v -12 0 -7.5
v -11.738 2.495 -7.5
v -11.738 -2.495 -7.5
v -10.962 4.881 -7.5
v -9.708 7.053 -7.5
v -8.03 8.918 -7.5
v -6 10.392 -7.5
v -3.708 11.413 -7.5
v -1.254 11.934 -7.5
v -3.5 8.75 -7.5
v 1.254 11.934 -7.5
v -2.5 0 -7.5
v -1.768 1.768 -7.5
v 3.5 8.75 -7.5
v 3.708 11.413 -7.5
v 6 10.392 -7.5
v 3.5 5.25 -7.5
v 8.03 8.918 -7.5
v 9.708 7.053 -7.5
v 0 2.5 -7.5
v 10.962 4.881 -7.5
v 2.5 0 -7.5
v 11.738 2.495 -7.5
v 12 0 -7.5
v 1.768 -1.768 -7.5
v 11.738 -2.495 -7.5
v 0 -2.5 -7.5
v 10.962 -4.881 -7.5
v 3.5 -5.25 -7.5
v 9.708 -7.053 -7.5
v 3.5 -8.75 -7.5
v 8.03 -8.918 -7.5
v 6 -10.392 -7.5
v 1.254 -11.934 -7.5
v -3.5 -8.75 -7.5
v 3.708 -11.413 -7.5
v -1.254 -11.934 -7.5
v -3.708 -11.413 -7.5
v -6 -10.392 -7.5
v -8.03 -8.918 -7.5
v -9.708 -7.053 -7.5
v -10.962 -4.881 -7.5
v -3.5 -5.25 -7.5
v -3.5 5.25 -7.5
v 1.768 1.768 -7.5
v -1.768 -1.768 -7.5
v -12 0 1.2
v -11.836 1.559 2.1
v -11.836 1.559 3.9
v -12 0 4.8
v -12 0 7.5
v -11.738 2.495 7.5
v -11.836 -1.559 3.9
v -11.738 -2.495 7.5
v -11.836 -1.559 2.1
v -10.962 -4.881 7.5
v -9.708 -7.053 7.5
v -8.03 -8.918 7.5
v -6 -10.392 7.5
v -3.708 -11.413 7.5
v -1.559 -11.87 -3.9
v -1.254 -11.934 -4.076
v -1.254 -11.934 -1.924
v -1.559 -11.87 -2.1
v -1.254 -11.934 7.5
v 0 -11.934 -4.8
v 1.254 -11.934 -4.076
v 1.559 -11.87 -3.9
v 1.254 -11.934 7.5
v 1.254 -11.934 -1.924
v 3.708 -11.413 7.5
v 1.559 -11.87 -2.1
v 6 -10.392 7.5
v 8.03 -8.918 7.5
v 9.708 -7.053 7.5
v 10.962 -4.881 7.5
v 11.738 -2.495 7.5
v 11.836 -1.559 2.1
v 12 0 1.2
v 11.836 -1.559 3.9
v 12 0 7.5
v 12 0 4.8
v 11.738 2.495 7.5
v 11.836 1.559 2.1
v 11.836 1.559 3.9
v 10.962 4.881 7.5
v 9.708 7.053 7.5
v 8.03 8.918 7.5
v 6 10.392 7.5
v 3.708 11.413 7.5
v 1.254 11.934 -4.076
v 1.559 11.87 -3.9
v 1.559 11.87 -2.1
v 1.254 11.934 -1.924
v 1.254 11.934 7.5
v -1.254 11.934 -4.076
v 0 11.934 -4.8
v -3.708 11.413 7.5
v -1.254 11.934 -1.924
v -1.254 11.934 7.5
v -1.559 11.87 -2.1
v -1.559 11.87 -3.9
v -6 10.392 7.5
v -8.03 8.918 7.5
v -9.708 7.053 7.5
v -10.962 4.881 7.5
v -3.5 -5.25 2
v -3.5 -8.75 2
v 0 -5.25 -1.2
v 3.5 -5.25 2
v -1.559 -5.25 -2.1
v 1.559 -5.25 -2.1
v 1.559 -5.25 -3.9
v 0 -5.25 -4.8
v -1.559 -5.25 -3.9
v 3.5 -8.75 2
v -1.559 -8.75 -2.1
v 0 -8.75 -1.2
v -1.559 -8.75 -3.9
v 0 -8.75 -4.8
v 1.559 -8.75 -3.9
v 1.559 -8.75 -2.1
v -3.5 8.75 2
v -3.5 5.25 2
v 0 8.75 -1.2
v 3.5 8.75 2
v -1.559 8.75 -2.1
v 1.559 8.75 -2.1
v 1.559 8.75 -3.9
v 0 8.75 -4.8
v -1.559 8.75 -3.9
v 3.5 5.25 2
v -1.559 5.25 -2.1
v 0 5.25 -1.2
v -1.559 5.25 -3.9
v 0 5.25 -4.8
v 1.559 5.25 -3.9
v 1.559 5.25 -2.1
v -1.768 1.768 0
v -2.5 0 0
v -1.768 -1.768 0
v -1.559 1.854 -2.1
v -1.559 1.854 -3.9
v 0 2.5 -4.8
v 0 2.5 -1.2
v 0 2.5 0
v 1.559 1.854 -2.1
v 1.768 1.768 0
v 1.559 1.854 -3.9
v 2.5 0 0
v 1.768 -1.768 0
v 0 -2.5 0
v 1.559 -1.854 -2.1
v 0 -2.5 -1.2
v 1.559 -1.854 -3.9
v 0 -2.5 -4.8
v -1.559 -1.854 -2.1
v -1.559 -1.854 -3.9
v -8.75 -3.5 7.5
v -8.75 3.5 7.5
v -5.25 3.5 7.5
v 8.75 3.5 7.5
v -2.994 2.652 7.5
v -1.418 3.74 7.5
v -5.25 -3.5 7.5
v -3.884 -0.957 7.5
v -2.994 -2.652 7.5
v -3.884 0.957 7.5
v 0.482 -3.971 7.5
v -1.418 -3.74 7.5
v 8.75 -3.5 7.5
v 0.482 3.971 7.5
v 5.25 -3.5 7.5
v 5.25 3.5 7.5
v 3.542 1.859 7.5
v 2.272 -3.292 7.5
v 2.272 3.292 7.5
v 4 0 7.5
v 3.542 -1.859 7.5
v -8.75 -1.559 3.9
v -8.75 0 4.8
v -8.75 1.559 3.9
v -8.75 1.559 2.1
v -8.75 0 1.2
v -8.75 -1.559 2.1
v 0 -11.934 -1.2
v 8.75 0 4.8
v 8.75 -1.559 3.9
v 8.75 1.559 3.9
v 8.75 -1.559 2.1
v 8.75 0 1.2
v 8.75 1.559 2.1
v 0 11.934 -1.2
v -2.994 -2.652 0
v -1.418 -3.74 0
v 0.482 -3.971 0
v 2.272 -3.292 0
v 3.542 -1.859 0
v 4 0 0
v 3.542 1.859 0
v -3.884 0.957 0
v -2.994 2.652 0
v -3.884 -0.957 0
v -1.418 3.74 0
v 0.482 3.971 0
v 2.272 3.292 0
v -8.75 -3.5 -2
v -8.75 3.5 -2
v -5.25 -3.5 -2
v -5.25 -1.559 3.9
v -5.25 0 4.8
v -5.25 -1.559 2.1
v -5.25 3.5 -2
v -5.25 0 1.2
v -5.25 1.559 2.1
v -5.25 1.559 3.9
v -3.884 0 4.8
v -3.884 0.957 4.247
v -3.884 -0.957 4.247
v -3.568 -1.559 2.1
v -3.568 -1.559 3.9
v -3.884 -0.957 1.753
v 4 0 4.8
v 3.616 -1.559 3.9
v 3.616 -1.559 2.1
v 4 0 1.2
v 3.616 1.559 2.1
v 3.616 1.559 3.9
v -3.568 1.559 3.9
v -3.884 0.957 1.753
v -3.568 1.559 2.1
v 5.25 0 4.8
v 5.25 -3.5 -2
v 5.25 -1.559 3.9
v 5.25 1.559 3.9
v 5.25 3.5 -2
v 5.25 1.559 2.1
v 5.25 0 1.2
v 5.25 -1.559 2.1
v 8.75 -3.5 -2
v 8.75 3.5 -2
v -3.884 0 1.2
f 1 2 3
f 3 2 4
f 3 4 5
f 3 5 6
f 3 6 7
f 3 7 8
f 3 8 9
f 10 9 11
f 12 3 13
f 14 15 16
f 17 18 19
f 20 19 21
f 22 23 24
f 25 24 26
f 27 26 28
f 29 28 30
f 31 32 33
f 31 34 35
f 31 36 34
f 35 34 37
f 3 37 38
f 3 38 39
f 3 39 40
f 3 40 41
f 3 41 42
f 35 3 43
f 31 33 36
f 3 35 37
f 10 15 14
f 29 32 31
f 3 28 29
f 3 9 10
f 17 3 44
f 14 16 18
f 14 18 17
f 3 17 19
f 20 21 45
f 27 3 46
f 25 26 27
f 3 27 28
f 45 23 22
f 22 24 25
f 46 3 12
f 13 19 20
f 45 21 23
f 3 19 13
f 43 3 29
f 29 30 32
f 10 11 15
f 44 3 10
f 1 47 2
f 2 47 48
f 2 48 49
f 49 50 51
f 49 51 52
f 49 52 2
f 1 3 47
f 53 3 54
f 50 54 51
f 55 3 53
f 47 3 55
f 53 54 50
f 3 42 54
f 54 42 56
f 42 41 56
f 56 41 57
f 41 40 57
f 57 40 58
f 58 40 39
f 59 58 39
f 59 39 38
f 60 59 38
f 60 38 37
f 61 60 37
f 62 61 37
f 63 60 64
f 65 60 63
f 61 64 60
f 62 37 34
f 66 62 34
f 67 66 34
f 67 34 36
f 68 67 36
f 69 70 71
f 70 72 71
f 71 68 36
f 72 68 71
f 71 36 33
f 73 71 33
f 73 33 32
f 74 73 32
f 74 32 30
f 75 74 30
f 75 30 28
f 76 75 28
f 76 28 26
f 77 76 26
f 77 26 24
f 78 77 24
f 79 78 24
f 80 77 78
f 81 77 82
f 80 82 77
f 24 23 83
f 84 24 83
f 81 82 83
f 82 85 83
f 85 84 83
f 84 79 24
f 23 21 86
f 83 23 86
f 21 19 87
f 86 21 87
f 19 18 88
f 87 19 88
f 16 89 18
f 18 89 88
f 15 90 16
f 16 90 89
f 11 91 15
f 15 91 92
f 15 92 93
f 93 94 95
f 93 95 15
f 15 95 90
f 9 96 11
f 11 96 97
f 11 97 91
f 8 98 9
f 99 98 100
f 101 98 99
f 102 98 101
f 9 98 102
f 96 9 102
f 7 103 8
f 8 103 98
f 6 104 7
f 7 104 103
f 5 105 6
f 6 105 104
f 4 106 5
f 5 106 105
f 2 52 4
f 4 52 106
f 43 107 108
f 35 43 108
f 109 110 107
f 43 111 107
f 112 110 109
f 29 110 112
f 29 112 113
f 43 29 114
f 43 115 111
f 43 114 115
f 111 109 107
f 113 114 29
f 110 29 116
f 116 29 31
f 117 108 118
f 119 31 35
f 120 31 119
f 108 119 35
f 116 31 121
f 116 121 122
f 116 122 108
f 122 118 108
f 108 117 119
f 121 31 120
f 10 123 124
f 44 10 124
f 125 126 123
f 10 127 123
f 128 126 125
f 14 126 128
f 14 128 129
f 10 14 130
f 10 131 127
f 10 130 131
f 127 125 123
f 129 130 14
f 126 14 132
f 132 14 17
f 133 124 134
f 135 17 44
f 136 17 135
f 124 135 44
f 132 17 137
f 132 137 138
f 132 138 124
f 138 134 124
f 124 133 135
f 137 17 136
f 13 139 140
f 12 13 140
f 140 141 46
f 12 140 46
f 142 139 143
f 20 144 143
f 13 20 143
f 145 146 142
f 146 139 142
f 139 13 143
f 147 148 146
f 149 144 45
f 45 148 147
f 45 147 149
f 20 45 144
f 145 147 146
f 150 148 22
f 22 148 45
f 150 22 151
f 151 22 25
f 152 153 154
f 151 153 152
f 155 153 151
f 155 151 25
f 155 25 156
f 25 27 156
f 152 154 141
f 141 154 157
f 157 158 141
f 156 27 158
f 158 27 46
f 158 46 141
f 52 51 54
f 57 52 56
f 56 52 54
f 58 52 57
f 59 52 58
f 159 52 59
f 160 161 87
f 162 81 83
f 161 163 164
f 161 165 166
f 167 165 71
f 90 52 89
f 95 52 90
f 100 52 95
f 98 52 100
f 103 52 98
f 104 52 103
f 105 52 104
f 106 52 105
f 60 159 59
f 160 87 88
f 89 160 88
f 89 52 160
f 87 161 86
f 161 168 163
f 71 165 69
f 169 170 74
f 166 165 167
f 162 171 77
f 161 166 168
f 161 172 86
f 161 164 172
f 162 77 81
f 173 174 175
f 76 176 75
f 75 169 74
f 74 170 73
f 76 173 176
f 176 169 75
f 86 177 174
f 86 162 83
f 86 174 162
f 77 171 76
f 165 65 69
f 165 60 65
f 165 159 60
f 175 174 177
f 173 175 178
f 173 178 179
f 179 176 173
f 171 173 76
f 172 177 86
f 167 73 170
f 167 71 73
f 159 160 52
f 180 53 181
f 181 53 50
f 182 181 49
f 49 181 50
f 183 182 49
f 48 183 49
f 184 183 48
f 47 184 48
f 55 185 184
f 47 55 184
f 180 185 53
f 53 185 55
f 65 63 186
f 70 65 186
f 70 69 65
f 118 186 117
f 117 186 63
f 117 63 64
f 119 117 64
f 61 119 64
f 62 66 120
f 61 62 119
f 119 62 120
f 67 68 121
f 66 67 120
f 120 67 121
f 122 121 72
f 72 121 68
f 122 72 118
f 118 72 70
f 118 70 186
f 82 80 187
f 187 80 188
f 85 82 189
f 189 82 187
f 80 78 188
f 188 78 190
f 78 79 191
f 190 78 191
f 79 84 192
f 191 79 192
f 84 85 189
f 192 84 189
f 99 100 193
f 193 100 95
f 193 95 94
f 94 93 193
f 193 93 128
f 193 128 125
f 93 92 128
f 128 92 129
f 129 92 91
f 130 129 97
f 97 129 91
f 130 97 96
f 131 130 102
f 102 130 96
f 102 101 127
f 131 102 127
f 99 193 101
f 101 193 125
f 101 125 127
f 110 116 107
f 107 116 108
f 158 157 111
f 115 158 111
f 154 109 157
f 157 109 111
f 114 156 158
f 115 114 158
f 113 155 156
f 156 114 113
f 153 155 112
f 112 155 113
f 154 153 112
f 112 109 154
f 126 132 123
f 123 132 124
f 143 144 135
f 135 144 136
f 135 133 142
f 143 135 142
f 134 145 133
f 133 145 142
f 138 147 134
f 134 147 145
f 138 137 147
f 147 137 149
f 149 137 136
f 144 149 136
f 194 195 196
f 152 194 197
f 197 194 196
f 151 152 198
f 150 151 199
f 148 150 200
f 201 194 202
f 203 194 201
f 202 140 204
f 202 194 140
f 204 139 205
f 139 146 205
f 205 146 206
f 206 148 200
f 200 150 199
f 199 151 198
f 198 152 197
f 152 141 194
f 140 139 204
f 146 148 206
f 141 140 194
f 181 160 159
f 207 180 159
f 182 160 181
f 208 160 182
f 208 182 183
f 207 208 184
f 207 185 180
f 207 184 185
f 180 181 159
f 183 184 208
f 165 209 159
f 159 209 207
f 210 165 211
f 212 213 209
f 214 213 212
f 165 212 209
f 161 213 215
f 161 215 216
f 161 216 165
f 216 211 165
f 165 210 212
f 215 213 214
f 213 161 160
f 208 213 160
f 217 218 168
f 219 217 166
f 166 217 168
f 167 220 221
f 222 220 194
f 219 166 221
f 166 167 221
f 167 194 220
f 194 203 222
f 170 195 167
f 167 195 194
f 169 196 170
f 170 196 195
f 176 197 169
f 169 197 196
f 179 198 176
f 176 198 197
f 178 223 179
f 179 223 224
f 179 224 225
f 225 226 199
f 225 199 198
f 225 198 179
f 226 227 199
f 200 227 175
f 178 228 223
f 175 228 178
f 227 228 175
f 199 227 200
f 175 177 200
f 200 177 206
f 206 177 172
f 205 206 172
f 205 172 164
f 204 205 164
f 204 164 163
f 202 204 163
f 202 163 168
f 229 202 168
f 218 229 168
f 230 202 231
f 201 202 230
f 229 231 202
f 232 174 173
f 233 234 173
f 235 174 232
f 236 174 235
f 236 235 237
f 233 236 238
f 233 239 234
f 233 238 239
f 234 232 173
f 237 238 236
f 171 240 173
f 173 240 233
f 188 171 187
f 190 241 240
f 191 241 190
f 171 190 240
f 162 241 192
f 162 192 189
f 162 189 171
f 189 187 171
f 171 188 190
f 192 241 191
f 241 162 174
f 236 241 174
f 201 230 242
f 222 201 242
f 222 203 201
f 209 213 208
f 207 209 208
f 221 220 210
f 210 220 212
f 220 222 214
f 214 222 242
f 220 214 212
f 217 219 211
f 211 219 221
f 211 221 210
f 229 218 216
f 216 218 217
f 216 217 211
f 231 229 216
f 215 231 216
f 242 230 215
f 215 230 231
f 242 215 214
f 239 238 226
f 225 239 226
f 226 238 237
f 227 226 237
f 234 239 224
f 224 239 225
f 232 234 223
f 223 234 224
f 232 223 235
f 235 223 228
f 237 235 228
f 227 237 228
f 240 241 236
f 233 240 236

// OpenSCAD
CONNECTOR_HEIGHT = 15;

module nut()
{
	//cylinder(r=3.25, h=2.5, center=true);
	cube([3.5,7,10], center=true);
}

module nutTrap()
{
	nut();

	rotate([0,90,0])
		cylinder(r=1.8, h=15, center=true);
	
}

module shaft8()
{
	translate([0,0,CONNECTOR_HEIGHT/2])
		cylinder(r=4, h=CONNECTOR_HEIGHT, center=true);
}

module shaft5()
{
	cylinder(r=2.5, h=2*CONNECTOR_HEIGHT, center=true);
}

module AxisConnector()
{
	difference()
	{
		cylinder(r=12, h=CONNECTOR_HEIGHT, center=true);

		translate([7,0,3])
			nutTrap();

		translate([-7,0,3])
			nutTrap();


		rotate([0,0,90])
		{
			translate([-7,0,-3])
				nutTrap();

			translate([7,0,-3])
				nutTrap();
		}

		shaft8();
		shaft5();
	}
}

AxisConnector();
